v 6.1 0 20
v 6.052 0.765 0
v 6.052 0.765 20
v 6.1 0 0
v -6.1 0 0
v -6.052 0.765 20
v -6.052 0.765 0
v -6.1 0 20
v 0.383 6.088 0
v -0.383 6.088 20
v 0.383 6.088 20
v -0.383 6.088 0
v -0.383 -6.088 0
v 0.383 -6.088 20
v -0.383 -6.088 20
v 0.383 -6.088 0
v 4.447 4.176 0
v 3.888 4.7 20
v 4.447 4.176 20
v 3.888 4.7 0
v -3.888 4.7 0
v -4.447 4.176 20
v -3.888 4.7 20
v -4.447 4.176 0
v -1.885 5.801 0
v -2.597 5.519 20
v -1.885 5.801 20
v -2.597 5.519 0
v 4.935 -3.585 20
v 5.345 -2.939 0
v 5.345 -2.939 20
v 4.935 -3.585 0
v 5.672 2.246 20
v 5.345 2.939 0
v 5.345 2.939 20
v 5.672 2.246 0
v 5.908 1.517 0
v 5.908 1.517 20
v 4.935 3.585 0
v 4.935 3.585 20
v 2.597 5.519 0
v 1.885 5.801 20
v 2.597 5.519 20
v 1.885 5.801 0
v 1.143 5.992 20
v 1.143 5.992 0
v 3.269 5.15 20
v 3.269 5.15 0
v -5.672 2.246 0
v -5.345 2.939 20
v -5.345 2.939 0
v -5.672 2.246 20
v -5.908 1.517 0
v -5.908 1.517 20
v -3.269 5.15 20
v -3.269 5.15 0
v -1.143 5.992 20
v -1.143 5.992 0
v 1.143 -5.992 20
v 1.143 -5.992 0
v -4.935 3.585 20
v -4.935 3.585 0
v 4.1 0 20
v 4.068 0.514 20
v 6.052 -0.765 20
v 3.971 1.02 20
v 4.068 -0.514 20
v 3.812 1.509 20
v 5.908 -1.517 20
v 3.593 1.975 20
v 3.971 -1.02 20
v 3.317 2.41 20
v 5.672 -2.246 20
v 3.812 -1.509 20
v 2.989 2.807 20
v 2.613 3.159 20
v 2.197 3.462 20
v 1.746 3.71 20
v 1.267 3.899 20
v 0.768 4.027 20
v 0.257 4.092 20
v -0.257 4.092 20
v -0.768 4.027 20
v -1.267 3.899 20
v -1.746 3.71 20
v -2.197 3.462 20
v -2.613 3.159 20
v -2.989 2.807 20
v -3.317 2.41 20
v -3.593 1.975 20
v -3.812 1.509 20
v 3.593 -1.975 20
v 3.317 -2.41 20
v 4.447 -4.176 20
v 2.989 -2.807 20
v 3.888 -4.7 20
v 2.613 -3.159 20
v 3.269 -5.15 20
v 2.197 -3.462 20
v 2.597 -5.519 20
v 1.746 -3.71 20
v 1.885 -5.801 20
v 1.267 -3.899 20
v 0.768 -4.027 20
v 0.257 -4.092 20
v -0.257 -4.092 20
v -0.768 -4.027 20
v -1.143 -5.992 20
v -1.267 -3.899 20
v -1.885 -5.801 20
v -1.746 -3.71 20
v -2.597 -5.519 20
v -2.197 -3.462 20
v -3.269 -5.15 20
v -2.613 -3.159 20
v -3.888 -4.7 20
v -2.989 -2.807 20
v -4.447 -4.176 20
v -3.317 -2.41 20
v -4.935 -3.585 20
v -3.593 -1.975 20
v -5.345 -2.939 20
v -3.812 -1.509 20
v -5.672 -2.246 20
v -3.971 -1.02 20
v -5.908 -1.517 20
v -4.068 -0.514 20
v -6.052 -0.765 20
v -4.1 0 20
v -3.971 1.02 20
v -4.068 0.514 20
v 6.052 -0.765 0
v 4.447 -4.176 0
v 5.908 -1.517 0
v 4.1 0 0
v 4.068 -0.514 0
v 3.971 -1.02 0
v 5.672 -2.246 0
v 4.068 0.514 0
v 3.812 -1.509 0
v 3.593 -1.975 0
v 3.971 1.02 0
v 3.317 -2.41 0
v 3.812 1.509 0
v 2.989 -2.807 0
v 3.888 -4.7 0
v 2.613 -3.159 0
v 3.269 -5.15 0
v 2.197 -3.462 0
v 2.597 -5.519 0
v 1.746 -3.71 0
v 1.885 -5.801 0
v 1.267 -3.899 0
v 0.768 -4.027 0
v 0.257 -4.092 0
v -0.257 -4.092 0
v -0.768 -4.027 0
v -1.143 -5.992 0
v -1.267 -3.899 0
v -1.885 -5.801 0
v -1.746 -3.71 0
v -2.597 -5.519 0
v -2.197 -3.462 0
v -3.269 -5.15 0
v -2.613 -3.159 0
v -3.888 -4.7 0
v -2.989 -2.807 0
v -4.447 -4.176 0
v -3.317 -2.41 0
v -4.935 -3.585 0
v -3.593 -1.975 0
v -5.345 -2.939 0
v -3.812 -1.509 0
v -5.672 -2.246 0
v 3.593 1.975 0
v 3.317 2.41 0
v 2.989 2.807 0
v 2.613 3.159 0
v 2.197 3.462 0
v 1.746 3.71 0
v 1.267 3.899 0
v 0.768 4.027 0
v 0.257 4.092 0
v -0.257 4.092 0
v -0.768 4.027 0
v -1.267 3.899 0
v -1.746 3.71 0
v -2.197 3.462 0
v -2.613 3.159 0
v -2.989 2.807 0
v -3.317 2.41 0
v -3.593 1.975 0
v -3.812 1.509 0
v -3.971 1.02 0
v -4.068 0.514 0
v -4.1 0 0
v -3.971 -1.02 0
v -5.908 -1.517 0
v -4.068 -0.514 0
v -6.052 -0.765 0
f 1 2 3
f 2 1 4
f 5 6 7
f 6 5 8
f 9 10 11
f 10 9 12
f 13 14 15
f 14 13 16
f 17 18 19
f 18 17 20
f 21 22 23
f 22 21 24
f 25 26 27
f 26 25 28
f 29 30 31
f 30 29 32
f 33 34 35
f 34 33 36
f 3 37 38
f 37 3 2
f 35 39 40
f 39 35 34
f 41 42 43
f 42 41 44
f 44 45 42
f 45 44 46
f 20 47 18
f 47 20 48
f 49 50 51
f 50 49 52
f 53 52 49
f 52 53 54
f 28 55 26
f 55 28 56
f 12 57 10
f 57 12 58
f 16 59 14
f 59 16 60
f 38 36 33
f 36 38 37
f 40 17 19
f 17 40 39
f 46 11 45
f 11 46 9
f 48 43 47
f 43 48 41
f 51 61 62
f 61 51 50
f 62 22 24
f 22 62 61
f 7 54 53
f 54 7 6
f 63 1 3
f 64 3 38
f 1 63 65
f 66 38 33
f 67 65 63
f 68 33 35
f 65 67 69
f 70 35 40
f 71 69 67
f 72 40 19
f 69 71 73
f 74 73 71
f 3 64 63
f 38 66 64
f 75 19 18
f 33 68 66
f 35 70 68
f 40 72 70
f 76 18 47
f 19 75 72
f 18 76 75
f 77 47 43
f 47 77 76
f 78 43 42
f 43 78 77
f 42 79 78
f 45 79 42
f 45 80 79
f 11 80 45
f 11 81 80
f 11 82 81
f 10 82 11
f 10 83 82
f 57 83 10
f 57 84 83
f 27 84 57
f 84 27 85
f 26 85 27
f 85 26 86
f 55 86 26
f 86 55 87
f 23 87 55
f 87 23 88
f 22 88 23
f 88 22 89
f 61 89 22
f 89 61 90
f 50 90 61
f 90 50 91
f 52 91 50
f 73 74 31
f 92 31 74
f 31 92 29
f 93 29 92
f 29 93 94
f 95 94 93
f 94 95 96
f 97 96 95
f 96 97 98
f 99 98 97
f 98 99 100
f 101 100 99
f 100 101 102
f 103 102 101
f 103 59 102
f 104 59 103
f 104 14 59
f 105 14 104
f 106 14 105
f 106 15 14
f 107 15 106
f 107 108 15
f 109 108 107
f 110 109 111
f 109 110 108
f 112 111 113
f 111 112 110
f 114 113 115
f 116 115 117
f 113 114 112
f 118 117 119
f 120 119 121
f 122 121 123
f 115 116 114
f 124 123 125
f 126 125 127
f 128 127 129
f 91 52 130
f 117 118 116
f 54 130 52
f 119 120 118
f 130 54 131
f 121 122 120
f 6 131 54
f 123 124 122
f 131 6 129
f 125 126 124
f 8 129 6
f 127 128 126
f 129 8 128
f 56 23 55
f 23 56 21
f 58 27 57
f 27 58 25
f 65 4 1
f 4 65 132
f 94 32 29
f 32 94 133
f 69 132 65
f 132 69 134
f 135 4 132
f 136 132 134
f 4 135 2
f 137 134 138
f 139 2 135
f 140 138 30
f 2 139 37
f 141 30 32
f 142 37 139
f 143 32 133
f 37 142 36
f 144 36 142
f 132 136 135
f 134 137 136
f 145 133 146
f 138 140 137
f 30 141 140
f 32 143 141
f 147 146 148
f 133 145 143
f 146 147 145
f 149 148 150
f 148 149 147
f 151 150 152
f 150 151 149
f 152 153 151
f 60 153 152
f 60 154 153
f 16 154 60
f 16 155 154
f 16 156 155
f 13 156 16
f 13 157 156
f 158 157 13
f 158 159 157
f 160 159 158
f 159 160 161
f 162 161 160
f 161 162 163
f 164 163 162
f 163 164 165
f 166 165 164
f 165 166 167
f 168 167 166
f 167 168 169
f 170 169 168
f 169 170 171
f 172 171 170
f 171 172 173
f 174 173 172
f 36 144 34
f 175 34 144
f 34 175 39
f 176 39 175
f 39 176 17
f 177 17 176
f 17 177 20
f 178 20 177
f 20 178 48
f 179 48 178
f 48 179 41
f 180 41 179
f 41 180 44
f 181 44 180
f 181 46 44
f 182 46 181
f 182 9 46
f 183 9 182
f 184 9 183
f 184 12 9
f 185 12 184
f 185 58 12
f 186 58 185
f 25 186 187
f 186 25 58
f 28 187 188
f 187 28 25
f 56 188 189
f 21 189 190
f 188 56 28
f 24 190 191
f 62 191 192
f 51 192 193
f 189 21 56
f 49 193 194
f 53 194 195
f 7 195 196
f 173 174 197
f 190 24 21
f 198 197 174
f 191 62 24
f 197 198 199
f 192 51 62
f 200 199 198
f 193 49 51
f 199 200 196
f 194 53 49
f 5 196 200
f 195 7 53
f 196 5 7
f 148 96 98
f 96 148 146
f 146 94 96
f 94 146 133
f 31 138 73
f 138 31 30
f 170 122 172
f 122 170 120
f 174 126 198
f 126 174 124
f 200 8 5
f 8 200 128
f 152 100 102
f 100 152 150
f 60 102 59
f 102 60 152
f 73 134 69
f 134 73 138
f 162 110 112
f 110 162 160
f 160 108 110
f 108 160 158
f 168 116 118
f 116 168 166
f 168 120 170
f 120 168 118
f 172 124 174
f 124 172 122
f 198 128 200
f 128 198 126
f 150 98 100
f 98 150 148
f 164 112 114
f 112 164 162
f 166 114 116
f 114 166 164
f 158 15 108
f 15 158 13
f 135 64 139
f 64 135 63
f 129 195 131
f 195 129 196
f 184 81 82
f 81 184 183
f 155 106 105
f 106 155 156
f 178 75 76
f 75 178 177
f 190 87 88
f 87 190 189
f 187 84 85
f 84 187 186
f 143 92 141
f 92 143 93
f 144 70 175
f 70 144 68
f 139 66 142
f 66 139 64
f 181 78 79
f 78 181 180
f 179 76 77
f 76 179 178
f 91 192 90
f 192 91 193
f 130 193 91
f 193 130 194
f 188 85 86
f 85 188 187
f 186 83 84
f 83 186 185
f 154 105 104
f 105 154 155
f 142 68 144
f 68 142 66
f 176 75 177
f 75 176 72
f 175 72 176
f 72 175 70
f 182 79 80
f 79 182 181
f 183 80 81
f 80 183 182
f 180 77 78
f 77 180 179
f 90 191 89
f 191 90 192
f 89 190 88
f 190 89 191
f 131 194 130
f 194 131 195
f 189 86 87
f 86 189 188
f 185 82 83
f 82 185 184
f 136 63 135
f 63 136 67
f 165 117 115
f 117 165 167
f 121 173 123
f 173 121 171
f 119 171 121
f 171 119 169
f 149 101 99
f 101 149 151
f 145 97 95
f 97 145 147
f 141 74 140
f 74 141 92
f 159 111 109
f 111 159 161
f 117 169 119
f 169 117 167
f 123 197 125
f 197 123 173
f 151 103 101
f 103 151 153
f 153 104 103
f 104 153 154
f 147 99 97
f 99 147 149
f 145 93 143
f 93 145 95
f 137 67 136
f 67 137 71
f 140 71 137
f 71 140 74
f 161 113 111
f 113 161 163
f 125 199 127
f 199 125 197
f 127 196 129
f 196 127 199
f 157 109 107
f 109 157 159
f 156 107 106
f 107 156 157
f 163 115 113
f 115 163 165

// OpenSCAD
// file: ../src/888_5012.scad
include <../parameters.scad>

module 888_5012() {
    difference() {
        cylinder(d=8+0.2+4, h=20, $fn=50);
        
        translate([0, 0, -ALU_profile_holder_wall_thickness])
        cylinder(d=8+0.2, h=26, $fn=50);
    }
}

888_5012();
// file: ../parameters.scad
maximum_printable_size = 150;

layer_thickness = 0.3;
global_clearance = 0.5;


//Screw diameter and nut for M10 [mm]
M10_screw_diameter = 10.4;
M10_head_height = 10;
M10_head_diameter = 16+0.5;
M10_nut_height = 10.5;
M10_nut_diameter = 25.5;
M10_nut_pocket = 22.3;

//Screw diameter for M8 [mm]
M8_screw_diameter = 8.6;
M8_head_height = 8;
M8_head_diameter = 13.5;
M8_nut_height = 7.5;
M8_square_nut_thin_height = 4.5;
M8_nut_diameter = 14.4 + 0.5;
M8_nut_pocket = 13 + 0.5;
M8_washer_diameter = 16;
M8_washer_thickness = 1.5;


//Screw diameter and nut for M6 [mm]
M6_screw_diameter=6.5;
M6_head_diameter = 10+0.5;
M6_head_height = 6;
M6_nut_height = 4.9;
M6_nut_diameter = 11.8;
M6_nut_pocket = 10.4;
M6_square_nut_height = 3;
M6_square_nut_diameter = 10;
M6_washer_thickness = 1.6;

//Screw diameter and nut for M5 [mm]
M5_screw_diameter=5.5;
M5_head_height = 5;
M5_head_diameter = 13+0.5;
M5_nut_height = 4.5;
M5_nut_diameter = 9.4;
M5_nut_pocket = 8.4;

//Screw diameter and nut for M4 [mm]
M4_screw_diameter=4.5;
M4_screw_head_height = 4;
M4_nut_height = 3.2;
M4_nut_diameter = 8.4;
M4_nut_pocket = 7.5;

//Screw diameter and nut for M3 [mm]
M3_screw_diameter = 3.2;
M3_nut_height = 2.7;
M3_nut_diameter = 6.6;
M3_nut_pocket = 5.6;
M3_screw_head_height = 3;

//Screw diameter and nut for M2,5 [mm]
M2_5_screw_diameter = 2.7;
M2_5_nut_height = 2.3;
M2_5_nut_diameter = 6;
M2_5_nut_pocket = 5.5;

// kulove lozisko

bearing_efsm_08_h = 33+1;
bearing_efsm_08_m = 22;
bearing_efsm_08_db = 18;
bearing_efsm_08_ag = 10.5;
bearing_efsm_08_n = M4_screw_diameter;
bearing_efsm_08_a1 = 5.5;
bearing_efsm_08_d = 8.25;
bearing_efsm_08_B = 8; // ball height

bearing_efsm_10_h = 38+1;
bearing_efsm_10_m = 26;
bearing_efsm_10_db = 21.9;
bearing_efsm_10_ag = 12+0.2;
bearing_efsm_10_n = M5_screw_diameter;
bearing_efsm_10_a1 = 6.5;
bearing_efsm_10_d = 10.25;


bearing_efsm_12_width = 40+1;
bearing_efsm_12_h = bearing_efsm_12_width;
bearing_efsm_12_boltd = 28/2; // polovina vzdalenosti mezi srouby
bearing_efsm_12_m = bearing_efsm_12_boltd*2;
bearing_efsm_12_db = 25;
bearing_efsm_12_ag = 13;
bearing_efsm_12_a1 = 7;
bearing_efsm_12_n = M5_screw_diameter;
bearing_efsm_12_d = 12.15;
bearing_efsm_12_B = 10; // ball height
bearing_efsm_space = 1;

bearing_efsm_17_width = 54+1;
bearing_efsm_17_h = bearing_efsm_17_width;
bearing_efsm_17_boltd = 38/2; // polovina vzdalenosti mezi srouby
bearing_efsm_17_m = bearing_efsm_17_boltd*2;
bearing_efsm_17_db = 35;
bearing_efsm_17_ag = 18;
bearing_efsm_17_n = M6_screw_diameter;
bearing_efsm_17_a1 = 10;
bearing_efsm_17_B = 17; // ball height

//limcove lozisko
bearing_EFOM_10_L=26; //celkova sirka zakladny
bearing_EFOM_10_d1=10.3;//diametr otvoru real=10 mm
bearing_EFOM_10_dB=22;//diametr vystupku pro ulozeni lozika
bearing_EFOM_10_H=52;//celková delka zakladny
bearing_EFOM_10_J=36;// hole pitch
bearing_EFOM_10_A1=6.5;//vyska pouzdra
bearing_EFOM_10_Ag=12;//celkova vyska
bearing_EFOM_10_N1=5;//sirka otvoru pro sroub
bearing_EFOM_10_N2=8;//delka otvoru pro sroub
bearing_EFOM_10_m=36;//roztec der pro sroub
bearing_EFOM_10_h=9;//vyska lozika


608_bearing_outer_diameter = 22.3;
608_bearing_inner_diameter = 16;
608_bearing_thickness = 7.1;


// 20 KG servo parameters

servo_20kg_axis_offset = 9.375; // jak je osa mimo stredu
servo_20kg_body_x = 42;
servo_20kg_body_y = 21;
servo_20kg_body_z = 40;
servo_20kg_thread_x = 49/2;
servo_20kg_thread_y = 10/2;
servo_20kg_body_below = 10; // jak hluboko je tělo serva pod drzaky na srouby
servo_20kg_below = 25.8; // jak hluboko je páka serva pod drzaky na srouby

servo_20kg_bolt_d = 2.5+0.3;
servo_20kg_nut_d = 5+0.3;


//strain gauge
strain_gauge_width = 12.7;
strain_gauge_length = 75.1;
strain_gauge_screw_distance = 10;

//ALU profile
ALU_profile_width = 30.5;
ALU_profile_holder_wall_thickness = 3;
ALU_profile_groove_width = 8;

//pillow block bearing
//https://www.igus.eu/product/372
//Part no. KSTM-08
KSTM08_screws_distance = 33;         //m
KSTM08_screws_holes_diameter = 4.5;  //d2
KSTM08_flange_thickness = 6;         //h3
KSTM08_case_width = 9;               //C1
KSTM08_case_length = 47;             //a
KSTM08_ball_width = 12;              //B
KSTM08_ball_hole_diameter = 7.85;    //d1


//ložiska pro malý rotor
bearing_outer_diameter = 10.2;    // Rozměr B1 v nákresu s přídavkem na toleranci otvoru
bearing_thickness = 4;        // Rozměr B2 v nákresu
//bearing_shaft_length = 19.5;    // Rozměr B3 v nákresu, Originalni hodnota 19.5
bearing_shaft_length = 20;    // Rozměr B3 v nákresu


//parametry víčka s telemetrickou anténou
S01_sila_materialu=1.2;
S01_vyska_horni_zavit=10;
S01_hloubka_zavitu=4;
S01_prumer_vnitrni=50;
LO_spodni_prumer=17.2;
LO_vyska_bez_krytu=15;
S01_tolerance_zavit=1.5;
R01_vyska_prekryti_statoru=10;

g3_0_cone1 = 70;
g3_0_srcew_dist = 55;



// scale parameters
base_length = 500;
mid_base_width = 500;
mid_base_height = 200;
mid_base_length = 500;
mid_base_x_offset = 50;
base_mid_base_hinge_offset = 50;
tower_height = 185;
tower_angle = atan((mid_base_width/2-ALU_profile_width-10)/tower_height);
tower_arm_length = tower_height/cos(tower_angle);
tower_drag_z_offset = 22;
electro_box_length = 225;
electro_box_width = 165;
electro_box_height = 51.5;

// calibration device parameters
calibration_arm_x_offset = 140;
calibration_arm_y_offset = 50;
// main file
//@set_slicing_config(../slicing/default.ini)

include <../parameters.scad>
use <../src/888_5012.scad>

888_5012();
